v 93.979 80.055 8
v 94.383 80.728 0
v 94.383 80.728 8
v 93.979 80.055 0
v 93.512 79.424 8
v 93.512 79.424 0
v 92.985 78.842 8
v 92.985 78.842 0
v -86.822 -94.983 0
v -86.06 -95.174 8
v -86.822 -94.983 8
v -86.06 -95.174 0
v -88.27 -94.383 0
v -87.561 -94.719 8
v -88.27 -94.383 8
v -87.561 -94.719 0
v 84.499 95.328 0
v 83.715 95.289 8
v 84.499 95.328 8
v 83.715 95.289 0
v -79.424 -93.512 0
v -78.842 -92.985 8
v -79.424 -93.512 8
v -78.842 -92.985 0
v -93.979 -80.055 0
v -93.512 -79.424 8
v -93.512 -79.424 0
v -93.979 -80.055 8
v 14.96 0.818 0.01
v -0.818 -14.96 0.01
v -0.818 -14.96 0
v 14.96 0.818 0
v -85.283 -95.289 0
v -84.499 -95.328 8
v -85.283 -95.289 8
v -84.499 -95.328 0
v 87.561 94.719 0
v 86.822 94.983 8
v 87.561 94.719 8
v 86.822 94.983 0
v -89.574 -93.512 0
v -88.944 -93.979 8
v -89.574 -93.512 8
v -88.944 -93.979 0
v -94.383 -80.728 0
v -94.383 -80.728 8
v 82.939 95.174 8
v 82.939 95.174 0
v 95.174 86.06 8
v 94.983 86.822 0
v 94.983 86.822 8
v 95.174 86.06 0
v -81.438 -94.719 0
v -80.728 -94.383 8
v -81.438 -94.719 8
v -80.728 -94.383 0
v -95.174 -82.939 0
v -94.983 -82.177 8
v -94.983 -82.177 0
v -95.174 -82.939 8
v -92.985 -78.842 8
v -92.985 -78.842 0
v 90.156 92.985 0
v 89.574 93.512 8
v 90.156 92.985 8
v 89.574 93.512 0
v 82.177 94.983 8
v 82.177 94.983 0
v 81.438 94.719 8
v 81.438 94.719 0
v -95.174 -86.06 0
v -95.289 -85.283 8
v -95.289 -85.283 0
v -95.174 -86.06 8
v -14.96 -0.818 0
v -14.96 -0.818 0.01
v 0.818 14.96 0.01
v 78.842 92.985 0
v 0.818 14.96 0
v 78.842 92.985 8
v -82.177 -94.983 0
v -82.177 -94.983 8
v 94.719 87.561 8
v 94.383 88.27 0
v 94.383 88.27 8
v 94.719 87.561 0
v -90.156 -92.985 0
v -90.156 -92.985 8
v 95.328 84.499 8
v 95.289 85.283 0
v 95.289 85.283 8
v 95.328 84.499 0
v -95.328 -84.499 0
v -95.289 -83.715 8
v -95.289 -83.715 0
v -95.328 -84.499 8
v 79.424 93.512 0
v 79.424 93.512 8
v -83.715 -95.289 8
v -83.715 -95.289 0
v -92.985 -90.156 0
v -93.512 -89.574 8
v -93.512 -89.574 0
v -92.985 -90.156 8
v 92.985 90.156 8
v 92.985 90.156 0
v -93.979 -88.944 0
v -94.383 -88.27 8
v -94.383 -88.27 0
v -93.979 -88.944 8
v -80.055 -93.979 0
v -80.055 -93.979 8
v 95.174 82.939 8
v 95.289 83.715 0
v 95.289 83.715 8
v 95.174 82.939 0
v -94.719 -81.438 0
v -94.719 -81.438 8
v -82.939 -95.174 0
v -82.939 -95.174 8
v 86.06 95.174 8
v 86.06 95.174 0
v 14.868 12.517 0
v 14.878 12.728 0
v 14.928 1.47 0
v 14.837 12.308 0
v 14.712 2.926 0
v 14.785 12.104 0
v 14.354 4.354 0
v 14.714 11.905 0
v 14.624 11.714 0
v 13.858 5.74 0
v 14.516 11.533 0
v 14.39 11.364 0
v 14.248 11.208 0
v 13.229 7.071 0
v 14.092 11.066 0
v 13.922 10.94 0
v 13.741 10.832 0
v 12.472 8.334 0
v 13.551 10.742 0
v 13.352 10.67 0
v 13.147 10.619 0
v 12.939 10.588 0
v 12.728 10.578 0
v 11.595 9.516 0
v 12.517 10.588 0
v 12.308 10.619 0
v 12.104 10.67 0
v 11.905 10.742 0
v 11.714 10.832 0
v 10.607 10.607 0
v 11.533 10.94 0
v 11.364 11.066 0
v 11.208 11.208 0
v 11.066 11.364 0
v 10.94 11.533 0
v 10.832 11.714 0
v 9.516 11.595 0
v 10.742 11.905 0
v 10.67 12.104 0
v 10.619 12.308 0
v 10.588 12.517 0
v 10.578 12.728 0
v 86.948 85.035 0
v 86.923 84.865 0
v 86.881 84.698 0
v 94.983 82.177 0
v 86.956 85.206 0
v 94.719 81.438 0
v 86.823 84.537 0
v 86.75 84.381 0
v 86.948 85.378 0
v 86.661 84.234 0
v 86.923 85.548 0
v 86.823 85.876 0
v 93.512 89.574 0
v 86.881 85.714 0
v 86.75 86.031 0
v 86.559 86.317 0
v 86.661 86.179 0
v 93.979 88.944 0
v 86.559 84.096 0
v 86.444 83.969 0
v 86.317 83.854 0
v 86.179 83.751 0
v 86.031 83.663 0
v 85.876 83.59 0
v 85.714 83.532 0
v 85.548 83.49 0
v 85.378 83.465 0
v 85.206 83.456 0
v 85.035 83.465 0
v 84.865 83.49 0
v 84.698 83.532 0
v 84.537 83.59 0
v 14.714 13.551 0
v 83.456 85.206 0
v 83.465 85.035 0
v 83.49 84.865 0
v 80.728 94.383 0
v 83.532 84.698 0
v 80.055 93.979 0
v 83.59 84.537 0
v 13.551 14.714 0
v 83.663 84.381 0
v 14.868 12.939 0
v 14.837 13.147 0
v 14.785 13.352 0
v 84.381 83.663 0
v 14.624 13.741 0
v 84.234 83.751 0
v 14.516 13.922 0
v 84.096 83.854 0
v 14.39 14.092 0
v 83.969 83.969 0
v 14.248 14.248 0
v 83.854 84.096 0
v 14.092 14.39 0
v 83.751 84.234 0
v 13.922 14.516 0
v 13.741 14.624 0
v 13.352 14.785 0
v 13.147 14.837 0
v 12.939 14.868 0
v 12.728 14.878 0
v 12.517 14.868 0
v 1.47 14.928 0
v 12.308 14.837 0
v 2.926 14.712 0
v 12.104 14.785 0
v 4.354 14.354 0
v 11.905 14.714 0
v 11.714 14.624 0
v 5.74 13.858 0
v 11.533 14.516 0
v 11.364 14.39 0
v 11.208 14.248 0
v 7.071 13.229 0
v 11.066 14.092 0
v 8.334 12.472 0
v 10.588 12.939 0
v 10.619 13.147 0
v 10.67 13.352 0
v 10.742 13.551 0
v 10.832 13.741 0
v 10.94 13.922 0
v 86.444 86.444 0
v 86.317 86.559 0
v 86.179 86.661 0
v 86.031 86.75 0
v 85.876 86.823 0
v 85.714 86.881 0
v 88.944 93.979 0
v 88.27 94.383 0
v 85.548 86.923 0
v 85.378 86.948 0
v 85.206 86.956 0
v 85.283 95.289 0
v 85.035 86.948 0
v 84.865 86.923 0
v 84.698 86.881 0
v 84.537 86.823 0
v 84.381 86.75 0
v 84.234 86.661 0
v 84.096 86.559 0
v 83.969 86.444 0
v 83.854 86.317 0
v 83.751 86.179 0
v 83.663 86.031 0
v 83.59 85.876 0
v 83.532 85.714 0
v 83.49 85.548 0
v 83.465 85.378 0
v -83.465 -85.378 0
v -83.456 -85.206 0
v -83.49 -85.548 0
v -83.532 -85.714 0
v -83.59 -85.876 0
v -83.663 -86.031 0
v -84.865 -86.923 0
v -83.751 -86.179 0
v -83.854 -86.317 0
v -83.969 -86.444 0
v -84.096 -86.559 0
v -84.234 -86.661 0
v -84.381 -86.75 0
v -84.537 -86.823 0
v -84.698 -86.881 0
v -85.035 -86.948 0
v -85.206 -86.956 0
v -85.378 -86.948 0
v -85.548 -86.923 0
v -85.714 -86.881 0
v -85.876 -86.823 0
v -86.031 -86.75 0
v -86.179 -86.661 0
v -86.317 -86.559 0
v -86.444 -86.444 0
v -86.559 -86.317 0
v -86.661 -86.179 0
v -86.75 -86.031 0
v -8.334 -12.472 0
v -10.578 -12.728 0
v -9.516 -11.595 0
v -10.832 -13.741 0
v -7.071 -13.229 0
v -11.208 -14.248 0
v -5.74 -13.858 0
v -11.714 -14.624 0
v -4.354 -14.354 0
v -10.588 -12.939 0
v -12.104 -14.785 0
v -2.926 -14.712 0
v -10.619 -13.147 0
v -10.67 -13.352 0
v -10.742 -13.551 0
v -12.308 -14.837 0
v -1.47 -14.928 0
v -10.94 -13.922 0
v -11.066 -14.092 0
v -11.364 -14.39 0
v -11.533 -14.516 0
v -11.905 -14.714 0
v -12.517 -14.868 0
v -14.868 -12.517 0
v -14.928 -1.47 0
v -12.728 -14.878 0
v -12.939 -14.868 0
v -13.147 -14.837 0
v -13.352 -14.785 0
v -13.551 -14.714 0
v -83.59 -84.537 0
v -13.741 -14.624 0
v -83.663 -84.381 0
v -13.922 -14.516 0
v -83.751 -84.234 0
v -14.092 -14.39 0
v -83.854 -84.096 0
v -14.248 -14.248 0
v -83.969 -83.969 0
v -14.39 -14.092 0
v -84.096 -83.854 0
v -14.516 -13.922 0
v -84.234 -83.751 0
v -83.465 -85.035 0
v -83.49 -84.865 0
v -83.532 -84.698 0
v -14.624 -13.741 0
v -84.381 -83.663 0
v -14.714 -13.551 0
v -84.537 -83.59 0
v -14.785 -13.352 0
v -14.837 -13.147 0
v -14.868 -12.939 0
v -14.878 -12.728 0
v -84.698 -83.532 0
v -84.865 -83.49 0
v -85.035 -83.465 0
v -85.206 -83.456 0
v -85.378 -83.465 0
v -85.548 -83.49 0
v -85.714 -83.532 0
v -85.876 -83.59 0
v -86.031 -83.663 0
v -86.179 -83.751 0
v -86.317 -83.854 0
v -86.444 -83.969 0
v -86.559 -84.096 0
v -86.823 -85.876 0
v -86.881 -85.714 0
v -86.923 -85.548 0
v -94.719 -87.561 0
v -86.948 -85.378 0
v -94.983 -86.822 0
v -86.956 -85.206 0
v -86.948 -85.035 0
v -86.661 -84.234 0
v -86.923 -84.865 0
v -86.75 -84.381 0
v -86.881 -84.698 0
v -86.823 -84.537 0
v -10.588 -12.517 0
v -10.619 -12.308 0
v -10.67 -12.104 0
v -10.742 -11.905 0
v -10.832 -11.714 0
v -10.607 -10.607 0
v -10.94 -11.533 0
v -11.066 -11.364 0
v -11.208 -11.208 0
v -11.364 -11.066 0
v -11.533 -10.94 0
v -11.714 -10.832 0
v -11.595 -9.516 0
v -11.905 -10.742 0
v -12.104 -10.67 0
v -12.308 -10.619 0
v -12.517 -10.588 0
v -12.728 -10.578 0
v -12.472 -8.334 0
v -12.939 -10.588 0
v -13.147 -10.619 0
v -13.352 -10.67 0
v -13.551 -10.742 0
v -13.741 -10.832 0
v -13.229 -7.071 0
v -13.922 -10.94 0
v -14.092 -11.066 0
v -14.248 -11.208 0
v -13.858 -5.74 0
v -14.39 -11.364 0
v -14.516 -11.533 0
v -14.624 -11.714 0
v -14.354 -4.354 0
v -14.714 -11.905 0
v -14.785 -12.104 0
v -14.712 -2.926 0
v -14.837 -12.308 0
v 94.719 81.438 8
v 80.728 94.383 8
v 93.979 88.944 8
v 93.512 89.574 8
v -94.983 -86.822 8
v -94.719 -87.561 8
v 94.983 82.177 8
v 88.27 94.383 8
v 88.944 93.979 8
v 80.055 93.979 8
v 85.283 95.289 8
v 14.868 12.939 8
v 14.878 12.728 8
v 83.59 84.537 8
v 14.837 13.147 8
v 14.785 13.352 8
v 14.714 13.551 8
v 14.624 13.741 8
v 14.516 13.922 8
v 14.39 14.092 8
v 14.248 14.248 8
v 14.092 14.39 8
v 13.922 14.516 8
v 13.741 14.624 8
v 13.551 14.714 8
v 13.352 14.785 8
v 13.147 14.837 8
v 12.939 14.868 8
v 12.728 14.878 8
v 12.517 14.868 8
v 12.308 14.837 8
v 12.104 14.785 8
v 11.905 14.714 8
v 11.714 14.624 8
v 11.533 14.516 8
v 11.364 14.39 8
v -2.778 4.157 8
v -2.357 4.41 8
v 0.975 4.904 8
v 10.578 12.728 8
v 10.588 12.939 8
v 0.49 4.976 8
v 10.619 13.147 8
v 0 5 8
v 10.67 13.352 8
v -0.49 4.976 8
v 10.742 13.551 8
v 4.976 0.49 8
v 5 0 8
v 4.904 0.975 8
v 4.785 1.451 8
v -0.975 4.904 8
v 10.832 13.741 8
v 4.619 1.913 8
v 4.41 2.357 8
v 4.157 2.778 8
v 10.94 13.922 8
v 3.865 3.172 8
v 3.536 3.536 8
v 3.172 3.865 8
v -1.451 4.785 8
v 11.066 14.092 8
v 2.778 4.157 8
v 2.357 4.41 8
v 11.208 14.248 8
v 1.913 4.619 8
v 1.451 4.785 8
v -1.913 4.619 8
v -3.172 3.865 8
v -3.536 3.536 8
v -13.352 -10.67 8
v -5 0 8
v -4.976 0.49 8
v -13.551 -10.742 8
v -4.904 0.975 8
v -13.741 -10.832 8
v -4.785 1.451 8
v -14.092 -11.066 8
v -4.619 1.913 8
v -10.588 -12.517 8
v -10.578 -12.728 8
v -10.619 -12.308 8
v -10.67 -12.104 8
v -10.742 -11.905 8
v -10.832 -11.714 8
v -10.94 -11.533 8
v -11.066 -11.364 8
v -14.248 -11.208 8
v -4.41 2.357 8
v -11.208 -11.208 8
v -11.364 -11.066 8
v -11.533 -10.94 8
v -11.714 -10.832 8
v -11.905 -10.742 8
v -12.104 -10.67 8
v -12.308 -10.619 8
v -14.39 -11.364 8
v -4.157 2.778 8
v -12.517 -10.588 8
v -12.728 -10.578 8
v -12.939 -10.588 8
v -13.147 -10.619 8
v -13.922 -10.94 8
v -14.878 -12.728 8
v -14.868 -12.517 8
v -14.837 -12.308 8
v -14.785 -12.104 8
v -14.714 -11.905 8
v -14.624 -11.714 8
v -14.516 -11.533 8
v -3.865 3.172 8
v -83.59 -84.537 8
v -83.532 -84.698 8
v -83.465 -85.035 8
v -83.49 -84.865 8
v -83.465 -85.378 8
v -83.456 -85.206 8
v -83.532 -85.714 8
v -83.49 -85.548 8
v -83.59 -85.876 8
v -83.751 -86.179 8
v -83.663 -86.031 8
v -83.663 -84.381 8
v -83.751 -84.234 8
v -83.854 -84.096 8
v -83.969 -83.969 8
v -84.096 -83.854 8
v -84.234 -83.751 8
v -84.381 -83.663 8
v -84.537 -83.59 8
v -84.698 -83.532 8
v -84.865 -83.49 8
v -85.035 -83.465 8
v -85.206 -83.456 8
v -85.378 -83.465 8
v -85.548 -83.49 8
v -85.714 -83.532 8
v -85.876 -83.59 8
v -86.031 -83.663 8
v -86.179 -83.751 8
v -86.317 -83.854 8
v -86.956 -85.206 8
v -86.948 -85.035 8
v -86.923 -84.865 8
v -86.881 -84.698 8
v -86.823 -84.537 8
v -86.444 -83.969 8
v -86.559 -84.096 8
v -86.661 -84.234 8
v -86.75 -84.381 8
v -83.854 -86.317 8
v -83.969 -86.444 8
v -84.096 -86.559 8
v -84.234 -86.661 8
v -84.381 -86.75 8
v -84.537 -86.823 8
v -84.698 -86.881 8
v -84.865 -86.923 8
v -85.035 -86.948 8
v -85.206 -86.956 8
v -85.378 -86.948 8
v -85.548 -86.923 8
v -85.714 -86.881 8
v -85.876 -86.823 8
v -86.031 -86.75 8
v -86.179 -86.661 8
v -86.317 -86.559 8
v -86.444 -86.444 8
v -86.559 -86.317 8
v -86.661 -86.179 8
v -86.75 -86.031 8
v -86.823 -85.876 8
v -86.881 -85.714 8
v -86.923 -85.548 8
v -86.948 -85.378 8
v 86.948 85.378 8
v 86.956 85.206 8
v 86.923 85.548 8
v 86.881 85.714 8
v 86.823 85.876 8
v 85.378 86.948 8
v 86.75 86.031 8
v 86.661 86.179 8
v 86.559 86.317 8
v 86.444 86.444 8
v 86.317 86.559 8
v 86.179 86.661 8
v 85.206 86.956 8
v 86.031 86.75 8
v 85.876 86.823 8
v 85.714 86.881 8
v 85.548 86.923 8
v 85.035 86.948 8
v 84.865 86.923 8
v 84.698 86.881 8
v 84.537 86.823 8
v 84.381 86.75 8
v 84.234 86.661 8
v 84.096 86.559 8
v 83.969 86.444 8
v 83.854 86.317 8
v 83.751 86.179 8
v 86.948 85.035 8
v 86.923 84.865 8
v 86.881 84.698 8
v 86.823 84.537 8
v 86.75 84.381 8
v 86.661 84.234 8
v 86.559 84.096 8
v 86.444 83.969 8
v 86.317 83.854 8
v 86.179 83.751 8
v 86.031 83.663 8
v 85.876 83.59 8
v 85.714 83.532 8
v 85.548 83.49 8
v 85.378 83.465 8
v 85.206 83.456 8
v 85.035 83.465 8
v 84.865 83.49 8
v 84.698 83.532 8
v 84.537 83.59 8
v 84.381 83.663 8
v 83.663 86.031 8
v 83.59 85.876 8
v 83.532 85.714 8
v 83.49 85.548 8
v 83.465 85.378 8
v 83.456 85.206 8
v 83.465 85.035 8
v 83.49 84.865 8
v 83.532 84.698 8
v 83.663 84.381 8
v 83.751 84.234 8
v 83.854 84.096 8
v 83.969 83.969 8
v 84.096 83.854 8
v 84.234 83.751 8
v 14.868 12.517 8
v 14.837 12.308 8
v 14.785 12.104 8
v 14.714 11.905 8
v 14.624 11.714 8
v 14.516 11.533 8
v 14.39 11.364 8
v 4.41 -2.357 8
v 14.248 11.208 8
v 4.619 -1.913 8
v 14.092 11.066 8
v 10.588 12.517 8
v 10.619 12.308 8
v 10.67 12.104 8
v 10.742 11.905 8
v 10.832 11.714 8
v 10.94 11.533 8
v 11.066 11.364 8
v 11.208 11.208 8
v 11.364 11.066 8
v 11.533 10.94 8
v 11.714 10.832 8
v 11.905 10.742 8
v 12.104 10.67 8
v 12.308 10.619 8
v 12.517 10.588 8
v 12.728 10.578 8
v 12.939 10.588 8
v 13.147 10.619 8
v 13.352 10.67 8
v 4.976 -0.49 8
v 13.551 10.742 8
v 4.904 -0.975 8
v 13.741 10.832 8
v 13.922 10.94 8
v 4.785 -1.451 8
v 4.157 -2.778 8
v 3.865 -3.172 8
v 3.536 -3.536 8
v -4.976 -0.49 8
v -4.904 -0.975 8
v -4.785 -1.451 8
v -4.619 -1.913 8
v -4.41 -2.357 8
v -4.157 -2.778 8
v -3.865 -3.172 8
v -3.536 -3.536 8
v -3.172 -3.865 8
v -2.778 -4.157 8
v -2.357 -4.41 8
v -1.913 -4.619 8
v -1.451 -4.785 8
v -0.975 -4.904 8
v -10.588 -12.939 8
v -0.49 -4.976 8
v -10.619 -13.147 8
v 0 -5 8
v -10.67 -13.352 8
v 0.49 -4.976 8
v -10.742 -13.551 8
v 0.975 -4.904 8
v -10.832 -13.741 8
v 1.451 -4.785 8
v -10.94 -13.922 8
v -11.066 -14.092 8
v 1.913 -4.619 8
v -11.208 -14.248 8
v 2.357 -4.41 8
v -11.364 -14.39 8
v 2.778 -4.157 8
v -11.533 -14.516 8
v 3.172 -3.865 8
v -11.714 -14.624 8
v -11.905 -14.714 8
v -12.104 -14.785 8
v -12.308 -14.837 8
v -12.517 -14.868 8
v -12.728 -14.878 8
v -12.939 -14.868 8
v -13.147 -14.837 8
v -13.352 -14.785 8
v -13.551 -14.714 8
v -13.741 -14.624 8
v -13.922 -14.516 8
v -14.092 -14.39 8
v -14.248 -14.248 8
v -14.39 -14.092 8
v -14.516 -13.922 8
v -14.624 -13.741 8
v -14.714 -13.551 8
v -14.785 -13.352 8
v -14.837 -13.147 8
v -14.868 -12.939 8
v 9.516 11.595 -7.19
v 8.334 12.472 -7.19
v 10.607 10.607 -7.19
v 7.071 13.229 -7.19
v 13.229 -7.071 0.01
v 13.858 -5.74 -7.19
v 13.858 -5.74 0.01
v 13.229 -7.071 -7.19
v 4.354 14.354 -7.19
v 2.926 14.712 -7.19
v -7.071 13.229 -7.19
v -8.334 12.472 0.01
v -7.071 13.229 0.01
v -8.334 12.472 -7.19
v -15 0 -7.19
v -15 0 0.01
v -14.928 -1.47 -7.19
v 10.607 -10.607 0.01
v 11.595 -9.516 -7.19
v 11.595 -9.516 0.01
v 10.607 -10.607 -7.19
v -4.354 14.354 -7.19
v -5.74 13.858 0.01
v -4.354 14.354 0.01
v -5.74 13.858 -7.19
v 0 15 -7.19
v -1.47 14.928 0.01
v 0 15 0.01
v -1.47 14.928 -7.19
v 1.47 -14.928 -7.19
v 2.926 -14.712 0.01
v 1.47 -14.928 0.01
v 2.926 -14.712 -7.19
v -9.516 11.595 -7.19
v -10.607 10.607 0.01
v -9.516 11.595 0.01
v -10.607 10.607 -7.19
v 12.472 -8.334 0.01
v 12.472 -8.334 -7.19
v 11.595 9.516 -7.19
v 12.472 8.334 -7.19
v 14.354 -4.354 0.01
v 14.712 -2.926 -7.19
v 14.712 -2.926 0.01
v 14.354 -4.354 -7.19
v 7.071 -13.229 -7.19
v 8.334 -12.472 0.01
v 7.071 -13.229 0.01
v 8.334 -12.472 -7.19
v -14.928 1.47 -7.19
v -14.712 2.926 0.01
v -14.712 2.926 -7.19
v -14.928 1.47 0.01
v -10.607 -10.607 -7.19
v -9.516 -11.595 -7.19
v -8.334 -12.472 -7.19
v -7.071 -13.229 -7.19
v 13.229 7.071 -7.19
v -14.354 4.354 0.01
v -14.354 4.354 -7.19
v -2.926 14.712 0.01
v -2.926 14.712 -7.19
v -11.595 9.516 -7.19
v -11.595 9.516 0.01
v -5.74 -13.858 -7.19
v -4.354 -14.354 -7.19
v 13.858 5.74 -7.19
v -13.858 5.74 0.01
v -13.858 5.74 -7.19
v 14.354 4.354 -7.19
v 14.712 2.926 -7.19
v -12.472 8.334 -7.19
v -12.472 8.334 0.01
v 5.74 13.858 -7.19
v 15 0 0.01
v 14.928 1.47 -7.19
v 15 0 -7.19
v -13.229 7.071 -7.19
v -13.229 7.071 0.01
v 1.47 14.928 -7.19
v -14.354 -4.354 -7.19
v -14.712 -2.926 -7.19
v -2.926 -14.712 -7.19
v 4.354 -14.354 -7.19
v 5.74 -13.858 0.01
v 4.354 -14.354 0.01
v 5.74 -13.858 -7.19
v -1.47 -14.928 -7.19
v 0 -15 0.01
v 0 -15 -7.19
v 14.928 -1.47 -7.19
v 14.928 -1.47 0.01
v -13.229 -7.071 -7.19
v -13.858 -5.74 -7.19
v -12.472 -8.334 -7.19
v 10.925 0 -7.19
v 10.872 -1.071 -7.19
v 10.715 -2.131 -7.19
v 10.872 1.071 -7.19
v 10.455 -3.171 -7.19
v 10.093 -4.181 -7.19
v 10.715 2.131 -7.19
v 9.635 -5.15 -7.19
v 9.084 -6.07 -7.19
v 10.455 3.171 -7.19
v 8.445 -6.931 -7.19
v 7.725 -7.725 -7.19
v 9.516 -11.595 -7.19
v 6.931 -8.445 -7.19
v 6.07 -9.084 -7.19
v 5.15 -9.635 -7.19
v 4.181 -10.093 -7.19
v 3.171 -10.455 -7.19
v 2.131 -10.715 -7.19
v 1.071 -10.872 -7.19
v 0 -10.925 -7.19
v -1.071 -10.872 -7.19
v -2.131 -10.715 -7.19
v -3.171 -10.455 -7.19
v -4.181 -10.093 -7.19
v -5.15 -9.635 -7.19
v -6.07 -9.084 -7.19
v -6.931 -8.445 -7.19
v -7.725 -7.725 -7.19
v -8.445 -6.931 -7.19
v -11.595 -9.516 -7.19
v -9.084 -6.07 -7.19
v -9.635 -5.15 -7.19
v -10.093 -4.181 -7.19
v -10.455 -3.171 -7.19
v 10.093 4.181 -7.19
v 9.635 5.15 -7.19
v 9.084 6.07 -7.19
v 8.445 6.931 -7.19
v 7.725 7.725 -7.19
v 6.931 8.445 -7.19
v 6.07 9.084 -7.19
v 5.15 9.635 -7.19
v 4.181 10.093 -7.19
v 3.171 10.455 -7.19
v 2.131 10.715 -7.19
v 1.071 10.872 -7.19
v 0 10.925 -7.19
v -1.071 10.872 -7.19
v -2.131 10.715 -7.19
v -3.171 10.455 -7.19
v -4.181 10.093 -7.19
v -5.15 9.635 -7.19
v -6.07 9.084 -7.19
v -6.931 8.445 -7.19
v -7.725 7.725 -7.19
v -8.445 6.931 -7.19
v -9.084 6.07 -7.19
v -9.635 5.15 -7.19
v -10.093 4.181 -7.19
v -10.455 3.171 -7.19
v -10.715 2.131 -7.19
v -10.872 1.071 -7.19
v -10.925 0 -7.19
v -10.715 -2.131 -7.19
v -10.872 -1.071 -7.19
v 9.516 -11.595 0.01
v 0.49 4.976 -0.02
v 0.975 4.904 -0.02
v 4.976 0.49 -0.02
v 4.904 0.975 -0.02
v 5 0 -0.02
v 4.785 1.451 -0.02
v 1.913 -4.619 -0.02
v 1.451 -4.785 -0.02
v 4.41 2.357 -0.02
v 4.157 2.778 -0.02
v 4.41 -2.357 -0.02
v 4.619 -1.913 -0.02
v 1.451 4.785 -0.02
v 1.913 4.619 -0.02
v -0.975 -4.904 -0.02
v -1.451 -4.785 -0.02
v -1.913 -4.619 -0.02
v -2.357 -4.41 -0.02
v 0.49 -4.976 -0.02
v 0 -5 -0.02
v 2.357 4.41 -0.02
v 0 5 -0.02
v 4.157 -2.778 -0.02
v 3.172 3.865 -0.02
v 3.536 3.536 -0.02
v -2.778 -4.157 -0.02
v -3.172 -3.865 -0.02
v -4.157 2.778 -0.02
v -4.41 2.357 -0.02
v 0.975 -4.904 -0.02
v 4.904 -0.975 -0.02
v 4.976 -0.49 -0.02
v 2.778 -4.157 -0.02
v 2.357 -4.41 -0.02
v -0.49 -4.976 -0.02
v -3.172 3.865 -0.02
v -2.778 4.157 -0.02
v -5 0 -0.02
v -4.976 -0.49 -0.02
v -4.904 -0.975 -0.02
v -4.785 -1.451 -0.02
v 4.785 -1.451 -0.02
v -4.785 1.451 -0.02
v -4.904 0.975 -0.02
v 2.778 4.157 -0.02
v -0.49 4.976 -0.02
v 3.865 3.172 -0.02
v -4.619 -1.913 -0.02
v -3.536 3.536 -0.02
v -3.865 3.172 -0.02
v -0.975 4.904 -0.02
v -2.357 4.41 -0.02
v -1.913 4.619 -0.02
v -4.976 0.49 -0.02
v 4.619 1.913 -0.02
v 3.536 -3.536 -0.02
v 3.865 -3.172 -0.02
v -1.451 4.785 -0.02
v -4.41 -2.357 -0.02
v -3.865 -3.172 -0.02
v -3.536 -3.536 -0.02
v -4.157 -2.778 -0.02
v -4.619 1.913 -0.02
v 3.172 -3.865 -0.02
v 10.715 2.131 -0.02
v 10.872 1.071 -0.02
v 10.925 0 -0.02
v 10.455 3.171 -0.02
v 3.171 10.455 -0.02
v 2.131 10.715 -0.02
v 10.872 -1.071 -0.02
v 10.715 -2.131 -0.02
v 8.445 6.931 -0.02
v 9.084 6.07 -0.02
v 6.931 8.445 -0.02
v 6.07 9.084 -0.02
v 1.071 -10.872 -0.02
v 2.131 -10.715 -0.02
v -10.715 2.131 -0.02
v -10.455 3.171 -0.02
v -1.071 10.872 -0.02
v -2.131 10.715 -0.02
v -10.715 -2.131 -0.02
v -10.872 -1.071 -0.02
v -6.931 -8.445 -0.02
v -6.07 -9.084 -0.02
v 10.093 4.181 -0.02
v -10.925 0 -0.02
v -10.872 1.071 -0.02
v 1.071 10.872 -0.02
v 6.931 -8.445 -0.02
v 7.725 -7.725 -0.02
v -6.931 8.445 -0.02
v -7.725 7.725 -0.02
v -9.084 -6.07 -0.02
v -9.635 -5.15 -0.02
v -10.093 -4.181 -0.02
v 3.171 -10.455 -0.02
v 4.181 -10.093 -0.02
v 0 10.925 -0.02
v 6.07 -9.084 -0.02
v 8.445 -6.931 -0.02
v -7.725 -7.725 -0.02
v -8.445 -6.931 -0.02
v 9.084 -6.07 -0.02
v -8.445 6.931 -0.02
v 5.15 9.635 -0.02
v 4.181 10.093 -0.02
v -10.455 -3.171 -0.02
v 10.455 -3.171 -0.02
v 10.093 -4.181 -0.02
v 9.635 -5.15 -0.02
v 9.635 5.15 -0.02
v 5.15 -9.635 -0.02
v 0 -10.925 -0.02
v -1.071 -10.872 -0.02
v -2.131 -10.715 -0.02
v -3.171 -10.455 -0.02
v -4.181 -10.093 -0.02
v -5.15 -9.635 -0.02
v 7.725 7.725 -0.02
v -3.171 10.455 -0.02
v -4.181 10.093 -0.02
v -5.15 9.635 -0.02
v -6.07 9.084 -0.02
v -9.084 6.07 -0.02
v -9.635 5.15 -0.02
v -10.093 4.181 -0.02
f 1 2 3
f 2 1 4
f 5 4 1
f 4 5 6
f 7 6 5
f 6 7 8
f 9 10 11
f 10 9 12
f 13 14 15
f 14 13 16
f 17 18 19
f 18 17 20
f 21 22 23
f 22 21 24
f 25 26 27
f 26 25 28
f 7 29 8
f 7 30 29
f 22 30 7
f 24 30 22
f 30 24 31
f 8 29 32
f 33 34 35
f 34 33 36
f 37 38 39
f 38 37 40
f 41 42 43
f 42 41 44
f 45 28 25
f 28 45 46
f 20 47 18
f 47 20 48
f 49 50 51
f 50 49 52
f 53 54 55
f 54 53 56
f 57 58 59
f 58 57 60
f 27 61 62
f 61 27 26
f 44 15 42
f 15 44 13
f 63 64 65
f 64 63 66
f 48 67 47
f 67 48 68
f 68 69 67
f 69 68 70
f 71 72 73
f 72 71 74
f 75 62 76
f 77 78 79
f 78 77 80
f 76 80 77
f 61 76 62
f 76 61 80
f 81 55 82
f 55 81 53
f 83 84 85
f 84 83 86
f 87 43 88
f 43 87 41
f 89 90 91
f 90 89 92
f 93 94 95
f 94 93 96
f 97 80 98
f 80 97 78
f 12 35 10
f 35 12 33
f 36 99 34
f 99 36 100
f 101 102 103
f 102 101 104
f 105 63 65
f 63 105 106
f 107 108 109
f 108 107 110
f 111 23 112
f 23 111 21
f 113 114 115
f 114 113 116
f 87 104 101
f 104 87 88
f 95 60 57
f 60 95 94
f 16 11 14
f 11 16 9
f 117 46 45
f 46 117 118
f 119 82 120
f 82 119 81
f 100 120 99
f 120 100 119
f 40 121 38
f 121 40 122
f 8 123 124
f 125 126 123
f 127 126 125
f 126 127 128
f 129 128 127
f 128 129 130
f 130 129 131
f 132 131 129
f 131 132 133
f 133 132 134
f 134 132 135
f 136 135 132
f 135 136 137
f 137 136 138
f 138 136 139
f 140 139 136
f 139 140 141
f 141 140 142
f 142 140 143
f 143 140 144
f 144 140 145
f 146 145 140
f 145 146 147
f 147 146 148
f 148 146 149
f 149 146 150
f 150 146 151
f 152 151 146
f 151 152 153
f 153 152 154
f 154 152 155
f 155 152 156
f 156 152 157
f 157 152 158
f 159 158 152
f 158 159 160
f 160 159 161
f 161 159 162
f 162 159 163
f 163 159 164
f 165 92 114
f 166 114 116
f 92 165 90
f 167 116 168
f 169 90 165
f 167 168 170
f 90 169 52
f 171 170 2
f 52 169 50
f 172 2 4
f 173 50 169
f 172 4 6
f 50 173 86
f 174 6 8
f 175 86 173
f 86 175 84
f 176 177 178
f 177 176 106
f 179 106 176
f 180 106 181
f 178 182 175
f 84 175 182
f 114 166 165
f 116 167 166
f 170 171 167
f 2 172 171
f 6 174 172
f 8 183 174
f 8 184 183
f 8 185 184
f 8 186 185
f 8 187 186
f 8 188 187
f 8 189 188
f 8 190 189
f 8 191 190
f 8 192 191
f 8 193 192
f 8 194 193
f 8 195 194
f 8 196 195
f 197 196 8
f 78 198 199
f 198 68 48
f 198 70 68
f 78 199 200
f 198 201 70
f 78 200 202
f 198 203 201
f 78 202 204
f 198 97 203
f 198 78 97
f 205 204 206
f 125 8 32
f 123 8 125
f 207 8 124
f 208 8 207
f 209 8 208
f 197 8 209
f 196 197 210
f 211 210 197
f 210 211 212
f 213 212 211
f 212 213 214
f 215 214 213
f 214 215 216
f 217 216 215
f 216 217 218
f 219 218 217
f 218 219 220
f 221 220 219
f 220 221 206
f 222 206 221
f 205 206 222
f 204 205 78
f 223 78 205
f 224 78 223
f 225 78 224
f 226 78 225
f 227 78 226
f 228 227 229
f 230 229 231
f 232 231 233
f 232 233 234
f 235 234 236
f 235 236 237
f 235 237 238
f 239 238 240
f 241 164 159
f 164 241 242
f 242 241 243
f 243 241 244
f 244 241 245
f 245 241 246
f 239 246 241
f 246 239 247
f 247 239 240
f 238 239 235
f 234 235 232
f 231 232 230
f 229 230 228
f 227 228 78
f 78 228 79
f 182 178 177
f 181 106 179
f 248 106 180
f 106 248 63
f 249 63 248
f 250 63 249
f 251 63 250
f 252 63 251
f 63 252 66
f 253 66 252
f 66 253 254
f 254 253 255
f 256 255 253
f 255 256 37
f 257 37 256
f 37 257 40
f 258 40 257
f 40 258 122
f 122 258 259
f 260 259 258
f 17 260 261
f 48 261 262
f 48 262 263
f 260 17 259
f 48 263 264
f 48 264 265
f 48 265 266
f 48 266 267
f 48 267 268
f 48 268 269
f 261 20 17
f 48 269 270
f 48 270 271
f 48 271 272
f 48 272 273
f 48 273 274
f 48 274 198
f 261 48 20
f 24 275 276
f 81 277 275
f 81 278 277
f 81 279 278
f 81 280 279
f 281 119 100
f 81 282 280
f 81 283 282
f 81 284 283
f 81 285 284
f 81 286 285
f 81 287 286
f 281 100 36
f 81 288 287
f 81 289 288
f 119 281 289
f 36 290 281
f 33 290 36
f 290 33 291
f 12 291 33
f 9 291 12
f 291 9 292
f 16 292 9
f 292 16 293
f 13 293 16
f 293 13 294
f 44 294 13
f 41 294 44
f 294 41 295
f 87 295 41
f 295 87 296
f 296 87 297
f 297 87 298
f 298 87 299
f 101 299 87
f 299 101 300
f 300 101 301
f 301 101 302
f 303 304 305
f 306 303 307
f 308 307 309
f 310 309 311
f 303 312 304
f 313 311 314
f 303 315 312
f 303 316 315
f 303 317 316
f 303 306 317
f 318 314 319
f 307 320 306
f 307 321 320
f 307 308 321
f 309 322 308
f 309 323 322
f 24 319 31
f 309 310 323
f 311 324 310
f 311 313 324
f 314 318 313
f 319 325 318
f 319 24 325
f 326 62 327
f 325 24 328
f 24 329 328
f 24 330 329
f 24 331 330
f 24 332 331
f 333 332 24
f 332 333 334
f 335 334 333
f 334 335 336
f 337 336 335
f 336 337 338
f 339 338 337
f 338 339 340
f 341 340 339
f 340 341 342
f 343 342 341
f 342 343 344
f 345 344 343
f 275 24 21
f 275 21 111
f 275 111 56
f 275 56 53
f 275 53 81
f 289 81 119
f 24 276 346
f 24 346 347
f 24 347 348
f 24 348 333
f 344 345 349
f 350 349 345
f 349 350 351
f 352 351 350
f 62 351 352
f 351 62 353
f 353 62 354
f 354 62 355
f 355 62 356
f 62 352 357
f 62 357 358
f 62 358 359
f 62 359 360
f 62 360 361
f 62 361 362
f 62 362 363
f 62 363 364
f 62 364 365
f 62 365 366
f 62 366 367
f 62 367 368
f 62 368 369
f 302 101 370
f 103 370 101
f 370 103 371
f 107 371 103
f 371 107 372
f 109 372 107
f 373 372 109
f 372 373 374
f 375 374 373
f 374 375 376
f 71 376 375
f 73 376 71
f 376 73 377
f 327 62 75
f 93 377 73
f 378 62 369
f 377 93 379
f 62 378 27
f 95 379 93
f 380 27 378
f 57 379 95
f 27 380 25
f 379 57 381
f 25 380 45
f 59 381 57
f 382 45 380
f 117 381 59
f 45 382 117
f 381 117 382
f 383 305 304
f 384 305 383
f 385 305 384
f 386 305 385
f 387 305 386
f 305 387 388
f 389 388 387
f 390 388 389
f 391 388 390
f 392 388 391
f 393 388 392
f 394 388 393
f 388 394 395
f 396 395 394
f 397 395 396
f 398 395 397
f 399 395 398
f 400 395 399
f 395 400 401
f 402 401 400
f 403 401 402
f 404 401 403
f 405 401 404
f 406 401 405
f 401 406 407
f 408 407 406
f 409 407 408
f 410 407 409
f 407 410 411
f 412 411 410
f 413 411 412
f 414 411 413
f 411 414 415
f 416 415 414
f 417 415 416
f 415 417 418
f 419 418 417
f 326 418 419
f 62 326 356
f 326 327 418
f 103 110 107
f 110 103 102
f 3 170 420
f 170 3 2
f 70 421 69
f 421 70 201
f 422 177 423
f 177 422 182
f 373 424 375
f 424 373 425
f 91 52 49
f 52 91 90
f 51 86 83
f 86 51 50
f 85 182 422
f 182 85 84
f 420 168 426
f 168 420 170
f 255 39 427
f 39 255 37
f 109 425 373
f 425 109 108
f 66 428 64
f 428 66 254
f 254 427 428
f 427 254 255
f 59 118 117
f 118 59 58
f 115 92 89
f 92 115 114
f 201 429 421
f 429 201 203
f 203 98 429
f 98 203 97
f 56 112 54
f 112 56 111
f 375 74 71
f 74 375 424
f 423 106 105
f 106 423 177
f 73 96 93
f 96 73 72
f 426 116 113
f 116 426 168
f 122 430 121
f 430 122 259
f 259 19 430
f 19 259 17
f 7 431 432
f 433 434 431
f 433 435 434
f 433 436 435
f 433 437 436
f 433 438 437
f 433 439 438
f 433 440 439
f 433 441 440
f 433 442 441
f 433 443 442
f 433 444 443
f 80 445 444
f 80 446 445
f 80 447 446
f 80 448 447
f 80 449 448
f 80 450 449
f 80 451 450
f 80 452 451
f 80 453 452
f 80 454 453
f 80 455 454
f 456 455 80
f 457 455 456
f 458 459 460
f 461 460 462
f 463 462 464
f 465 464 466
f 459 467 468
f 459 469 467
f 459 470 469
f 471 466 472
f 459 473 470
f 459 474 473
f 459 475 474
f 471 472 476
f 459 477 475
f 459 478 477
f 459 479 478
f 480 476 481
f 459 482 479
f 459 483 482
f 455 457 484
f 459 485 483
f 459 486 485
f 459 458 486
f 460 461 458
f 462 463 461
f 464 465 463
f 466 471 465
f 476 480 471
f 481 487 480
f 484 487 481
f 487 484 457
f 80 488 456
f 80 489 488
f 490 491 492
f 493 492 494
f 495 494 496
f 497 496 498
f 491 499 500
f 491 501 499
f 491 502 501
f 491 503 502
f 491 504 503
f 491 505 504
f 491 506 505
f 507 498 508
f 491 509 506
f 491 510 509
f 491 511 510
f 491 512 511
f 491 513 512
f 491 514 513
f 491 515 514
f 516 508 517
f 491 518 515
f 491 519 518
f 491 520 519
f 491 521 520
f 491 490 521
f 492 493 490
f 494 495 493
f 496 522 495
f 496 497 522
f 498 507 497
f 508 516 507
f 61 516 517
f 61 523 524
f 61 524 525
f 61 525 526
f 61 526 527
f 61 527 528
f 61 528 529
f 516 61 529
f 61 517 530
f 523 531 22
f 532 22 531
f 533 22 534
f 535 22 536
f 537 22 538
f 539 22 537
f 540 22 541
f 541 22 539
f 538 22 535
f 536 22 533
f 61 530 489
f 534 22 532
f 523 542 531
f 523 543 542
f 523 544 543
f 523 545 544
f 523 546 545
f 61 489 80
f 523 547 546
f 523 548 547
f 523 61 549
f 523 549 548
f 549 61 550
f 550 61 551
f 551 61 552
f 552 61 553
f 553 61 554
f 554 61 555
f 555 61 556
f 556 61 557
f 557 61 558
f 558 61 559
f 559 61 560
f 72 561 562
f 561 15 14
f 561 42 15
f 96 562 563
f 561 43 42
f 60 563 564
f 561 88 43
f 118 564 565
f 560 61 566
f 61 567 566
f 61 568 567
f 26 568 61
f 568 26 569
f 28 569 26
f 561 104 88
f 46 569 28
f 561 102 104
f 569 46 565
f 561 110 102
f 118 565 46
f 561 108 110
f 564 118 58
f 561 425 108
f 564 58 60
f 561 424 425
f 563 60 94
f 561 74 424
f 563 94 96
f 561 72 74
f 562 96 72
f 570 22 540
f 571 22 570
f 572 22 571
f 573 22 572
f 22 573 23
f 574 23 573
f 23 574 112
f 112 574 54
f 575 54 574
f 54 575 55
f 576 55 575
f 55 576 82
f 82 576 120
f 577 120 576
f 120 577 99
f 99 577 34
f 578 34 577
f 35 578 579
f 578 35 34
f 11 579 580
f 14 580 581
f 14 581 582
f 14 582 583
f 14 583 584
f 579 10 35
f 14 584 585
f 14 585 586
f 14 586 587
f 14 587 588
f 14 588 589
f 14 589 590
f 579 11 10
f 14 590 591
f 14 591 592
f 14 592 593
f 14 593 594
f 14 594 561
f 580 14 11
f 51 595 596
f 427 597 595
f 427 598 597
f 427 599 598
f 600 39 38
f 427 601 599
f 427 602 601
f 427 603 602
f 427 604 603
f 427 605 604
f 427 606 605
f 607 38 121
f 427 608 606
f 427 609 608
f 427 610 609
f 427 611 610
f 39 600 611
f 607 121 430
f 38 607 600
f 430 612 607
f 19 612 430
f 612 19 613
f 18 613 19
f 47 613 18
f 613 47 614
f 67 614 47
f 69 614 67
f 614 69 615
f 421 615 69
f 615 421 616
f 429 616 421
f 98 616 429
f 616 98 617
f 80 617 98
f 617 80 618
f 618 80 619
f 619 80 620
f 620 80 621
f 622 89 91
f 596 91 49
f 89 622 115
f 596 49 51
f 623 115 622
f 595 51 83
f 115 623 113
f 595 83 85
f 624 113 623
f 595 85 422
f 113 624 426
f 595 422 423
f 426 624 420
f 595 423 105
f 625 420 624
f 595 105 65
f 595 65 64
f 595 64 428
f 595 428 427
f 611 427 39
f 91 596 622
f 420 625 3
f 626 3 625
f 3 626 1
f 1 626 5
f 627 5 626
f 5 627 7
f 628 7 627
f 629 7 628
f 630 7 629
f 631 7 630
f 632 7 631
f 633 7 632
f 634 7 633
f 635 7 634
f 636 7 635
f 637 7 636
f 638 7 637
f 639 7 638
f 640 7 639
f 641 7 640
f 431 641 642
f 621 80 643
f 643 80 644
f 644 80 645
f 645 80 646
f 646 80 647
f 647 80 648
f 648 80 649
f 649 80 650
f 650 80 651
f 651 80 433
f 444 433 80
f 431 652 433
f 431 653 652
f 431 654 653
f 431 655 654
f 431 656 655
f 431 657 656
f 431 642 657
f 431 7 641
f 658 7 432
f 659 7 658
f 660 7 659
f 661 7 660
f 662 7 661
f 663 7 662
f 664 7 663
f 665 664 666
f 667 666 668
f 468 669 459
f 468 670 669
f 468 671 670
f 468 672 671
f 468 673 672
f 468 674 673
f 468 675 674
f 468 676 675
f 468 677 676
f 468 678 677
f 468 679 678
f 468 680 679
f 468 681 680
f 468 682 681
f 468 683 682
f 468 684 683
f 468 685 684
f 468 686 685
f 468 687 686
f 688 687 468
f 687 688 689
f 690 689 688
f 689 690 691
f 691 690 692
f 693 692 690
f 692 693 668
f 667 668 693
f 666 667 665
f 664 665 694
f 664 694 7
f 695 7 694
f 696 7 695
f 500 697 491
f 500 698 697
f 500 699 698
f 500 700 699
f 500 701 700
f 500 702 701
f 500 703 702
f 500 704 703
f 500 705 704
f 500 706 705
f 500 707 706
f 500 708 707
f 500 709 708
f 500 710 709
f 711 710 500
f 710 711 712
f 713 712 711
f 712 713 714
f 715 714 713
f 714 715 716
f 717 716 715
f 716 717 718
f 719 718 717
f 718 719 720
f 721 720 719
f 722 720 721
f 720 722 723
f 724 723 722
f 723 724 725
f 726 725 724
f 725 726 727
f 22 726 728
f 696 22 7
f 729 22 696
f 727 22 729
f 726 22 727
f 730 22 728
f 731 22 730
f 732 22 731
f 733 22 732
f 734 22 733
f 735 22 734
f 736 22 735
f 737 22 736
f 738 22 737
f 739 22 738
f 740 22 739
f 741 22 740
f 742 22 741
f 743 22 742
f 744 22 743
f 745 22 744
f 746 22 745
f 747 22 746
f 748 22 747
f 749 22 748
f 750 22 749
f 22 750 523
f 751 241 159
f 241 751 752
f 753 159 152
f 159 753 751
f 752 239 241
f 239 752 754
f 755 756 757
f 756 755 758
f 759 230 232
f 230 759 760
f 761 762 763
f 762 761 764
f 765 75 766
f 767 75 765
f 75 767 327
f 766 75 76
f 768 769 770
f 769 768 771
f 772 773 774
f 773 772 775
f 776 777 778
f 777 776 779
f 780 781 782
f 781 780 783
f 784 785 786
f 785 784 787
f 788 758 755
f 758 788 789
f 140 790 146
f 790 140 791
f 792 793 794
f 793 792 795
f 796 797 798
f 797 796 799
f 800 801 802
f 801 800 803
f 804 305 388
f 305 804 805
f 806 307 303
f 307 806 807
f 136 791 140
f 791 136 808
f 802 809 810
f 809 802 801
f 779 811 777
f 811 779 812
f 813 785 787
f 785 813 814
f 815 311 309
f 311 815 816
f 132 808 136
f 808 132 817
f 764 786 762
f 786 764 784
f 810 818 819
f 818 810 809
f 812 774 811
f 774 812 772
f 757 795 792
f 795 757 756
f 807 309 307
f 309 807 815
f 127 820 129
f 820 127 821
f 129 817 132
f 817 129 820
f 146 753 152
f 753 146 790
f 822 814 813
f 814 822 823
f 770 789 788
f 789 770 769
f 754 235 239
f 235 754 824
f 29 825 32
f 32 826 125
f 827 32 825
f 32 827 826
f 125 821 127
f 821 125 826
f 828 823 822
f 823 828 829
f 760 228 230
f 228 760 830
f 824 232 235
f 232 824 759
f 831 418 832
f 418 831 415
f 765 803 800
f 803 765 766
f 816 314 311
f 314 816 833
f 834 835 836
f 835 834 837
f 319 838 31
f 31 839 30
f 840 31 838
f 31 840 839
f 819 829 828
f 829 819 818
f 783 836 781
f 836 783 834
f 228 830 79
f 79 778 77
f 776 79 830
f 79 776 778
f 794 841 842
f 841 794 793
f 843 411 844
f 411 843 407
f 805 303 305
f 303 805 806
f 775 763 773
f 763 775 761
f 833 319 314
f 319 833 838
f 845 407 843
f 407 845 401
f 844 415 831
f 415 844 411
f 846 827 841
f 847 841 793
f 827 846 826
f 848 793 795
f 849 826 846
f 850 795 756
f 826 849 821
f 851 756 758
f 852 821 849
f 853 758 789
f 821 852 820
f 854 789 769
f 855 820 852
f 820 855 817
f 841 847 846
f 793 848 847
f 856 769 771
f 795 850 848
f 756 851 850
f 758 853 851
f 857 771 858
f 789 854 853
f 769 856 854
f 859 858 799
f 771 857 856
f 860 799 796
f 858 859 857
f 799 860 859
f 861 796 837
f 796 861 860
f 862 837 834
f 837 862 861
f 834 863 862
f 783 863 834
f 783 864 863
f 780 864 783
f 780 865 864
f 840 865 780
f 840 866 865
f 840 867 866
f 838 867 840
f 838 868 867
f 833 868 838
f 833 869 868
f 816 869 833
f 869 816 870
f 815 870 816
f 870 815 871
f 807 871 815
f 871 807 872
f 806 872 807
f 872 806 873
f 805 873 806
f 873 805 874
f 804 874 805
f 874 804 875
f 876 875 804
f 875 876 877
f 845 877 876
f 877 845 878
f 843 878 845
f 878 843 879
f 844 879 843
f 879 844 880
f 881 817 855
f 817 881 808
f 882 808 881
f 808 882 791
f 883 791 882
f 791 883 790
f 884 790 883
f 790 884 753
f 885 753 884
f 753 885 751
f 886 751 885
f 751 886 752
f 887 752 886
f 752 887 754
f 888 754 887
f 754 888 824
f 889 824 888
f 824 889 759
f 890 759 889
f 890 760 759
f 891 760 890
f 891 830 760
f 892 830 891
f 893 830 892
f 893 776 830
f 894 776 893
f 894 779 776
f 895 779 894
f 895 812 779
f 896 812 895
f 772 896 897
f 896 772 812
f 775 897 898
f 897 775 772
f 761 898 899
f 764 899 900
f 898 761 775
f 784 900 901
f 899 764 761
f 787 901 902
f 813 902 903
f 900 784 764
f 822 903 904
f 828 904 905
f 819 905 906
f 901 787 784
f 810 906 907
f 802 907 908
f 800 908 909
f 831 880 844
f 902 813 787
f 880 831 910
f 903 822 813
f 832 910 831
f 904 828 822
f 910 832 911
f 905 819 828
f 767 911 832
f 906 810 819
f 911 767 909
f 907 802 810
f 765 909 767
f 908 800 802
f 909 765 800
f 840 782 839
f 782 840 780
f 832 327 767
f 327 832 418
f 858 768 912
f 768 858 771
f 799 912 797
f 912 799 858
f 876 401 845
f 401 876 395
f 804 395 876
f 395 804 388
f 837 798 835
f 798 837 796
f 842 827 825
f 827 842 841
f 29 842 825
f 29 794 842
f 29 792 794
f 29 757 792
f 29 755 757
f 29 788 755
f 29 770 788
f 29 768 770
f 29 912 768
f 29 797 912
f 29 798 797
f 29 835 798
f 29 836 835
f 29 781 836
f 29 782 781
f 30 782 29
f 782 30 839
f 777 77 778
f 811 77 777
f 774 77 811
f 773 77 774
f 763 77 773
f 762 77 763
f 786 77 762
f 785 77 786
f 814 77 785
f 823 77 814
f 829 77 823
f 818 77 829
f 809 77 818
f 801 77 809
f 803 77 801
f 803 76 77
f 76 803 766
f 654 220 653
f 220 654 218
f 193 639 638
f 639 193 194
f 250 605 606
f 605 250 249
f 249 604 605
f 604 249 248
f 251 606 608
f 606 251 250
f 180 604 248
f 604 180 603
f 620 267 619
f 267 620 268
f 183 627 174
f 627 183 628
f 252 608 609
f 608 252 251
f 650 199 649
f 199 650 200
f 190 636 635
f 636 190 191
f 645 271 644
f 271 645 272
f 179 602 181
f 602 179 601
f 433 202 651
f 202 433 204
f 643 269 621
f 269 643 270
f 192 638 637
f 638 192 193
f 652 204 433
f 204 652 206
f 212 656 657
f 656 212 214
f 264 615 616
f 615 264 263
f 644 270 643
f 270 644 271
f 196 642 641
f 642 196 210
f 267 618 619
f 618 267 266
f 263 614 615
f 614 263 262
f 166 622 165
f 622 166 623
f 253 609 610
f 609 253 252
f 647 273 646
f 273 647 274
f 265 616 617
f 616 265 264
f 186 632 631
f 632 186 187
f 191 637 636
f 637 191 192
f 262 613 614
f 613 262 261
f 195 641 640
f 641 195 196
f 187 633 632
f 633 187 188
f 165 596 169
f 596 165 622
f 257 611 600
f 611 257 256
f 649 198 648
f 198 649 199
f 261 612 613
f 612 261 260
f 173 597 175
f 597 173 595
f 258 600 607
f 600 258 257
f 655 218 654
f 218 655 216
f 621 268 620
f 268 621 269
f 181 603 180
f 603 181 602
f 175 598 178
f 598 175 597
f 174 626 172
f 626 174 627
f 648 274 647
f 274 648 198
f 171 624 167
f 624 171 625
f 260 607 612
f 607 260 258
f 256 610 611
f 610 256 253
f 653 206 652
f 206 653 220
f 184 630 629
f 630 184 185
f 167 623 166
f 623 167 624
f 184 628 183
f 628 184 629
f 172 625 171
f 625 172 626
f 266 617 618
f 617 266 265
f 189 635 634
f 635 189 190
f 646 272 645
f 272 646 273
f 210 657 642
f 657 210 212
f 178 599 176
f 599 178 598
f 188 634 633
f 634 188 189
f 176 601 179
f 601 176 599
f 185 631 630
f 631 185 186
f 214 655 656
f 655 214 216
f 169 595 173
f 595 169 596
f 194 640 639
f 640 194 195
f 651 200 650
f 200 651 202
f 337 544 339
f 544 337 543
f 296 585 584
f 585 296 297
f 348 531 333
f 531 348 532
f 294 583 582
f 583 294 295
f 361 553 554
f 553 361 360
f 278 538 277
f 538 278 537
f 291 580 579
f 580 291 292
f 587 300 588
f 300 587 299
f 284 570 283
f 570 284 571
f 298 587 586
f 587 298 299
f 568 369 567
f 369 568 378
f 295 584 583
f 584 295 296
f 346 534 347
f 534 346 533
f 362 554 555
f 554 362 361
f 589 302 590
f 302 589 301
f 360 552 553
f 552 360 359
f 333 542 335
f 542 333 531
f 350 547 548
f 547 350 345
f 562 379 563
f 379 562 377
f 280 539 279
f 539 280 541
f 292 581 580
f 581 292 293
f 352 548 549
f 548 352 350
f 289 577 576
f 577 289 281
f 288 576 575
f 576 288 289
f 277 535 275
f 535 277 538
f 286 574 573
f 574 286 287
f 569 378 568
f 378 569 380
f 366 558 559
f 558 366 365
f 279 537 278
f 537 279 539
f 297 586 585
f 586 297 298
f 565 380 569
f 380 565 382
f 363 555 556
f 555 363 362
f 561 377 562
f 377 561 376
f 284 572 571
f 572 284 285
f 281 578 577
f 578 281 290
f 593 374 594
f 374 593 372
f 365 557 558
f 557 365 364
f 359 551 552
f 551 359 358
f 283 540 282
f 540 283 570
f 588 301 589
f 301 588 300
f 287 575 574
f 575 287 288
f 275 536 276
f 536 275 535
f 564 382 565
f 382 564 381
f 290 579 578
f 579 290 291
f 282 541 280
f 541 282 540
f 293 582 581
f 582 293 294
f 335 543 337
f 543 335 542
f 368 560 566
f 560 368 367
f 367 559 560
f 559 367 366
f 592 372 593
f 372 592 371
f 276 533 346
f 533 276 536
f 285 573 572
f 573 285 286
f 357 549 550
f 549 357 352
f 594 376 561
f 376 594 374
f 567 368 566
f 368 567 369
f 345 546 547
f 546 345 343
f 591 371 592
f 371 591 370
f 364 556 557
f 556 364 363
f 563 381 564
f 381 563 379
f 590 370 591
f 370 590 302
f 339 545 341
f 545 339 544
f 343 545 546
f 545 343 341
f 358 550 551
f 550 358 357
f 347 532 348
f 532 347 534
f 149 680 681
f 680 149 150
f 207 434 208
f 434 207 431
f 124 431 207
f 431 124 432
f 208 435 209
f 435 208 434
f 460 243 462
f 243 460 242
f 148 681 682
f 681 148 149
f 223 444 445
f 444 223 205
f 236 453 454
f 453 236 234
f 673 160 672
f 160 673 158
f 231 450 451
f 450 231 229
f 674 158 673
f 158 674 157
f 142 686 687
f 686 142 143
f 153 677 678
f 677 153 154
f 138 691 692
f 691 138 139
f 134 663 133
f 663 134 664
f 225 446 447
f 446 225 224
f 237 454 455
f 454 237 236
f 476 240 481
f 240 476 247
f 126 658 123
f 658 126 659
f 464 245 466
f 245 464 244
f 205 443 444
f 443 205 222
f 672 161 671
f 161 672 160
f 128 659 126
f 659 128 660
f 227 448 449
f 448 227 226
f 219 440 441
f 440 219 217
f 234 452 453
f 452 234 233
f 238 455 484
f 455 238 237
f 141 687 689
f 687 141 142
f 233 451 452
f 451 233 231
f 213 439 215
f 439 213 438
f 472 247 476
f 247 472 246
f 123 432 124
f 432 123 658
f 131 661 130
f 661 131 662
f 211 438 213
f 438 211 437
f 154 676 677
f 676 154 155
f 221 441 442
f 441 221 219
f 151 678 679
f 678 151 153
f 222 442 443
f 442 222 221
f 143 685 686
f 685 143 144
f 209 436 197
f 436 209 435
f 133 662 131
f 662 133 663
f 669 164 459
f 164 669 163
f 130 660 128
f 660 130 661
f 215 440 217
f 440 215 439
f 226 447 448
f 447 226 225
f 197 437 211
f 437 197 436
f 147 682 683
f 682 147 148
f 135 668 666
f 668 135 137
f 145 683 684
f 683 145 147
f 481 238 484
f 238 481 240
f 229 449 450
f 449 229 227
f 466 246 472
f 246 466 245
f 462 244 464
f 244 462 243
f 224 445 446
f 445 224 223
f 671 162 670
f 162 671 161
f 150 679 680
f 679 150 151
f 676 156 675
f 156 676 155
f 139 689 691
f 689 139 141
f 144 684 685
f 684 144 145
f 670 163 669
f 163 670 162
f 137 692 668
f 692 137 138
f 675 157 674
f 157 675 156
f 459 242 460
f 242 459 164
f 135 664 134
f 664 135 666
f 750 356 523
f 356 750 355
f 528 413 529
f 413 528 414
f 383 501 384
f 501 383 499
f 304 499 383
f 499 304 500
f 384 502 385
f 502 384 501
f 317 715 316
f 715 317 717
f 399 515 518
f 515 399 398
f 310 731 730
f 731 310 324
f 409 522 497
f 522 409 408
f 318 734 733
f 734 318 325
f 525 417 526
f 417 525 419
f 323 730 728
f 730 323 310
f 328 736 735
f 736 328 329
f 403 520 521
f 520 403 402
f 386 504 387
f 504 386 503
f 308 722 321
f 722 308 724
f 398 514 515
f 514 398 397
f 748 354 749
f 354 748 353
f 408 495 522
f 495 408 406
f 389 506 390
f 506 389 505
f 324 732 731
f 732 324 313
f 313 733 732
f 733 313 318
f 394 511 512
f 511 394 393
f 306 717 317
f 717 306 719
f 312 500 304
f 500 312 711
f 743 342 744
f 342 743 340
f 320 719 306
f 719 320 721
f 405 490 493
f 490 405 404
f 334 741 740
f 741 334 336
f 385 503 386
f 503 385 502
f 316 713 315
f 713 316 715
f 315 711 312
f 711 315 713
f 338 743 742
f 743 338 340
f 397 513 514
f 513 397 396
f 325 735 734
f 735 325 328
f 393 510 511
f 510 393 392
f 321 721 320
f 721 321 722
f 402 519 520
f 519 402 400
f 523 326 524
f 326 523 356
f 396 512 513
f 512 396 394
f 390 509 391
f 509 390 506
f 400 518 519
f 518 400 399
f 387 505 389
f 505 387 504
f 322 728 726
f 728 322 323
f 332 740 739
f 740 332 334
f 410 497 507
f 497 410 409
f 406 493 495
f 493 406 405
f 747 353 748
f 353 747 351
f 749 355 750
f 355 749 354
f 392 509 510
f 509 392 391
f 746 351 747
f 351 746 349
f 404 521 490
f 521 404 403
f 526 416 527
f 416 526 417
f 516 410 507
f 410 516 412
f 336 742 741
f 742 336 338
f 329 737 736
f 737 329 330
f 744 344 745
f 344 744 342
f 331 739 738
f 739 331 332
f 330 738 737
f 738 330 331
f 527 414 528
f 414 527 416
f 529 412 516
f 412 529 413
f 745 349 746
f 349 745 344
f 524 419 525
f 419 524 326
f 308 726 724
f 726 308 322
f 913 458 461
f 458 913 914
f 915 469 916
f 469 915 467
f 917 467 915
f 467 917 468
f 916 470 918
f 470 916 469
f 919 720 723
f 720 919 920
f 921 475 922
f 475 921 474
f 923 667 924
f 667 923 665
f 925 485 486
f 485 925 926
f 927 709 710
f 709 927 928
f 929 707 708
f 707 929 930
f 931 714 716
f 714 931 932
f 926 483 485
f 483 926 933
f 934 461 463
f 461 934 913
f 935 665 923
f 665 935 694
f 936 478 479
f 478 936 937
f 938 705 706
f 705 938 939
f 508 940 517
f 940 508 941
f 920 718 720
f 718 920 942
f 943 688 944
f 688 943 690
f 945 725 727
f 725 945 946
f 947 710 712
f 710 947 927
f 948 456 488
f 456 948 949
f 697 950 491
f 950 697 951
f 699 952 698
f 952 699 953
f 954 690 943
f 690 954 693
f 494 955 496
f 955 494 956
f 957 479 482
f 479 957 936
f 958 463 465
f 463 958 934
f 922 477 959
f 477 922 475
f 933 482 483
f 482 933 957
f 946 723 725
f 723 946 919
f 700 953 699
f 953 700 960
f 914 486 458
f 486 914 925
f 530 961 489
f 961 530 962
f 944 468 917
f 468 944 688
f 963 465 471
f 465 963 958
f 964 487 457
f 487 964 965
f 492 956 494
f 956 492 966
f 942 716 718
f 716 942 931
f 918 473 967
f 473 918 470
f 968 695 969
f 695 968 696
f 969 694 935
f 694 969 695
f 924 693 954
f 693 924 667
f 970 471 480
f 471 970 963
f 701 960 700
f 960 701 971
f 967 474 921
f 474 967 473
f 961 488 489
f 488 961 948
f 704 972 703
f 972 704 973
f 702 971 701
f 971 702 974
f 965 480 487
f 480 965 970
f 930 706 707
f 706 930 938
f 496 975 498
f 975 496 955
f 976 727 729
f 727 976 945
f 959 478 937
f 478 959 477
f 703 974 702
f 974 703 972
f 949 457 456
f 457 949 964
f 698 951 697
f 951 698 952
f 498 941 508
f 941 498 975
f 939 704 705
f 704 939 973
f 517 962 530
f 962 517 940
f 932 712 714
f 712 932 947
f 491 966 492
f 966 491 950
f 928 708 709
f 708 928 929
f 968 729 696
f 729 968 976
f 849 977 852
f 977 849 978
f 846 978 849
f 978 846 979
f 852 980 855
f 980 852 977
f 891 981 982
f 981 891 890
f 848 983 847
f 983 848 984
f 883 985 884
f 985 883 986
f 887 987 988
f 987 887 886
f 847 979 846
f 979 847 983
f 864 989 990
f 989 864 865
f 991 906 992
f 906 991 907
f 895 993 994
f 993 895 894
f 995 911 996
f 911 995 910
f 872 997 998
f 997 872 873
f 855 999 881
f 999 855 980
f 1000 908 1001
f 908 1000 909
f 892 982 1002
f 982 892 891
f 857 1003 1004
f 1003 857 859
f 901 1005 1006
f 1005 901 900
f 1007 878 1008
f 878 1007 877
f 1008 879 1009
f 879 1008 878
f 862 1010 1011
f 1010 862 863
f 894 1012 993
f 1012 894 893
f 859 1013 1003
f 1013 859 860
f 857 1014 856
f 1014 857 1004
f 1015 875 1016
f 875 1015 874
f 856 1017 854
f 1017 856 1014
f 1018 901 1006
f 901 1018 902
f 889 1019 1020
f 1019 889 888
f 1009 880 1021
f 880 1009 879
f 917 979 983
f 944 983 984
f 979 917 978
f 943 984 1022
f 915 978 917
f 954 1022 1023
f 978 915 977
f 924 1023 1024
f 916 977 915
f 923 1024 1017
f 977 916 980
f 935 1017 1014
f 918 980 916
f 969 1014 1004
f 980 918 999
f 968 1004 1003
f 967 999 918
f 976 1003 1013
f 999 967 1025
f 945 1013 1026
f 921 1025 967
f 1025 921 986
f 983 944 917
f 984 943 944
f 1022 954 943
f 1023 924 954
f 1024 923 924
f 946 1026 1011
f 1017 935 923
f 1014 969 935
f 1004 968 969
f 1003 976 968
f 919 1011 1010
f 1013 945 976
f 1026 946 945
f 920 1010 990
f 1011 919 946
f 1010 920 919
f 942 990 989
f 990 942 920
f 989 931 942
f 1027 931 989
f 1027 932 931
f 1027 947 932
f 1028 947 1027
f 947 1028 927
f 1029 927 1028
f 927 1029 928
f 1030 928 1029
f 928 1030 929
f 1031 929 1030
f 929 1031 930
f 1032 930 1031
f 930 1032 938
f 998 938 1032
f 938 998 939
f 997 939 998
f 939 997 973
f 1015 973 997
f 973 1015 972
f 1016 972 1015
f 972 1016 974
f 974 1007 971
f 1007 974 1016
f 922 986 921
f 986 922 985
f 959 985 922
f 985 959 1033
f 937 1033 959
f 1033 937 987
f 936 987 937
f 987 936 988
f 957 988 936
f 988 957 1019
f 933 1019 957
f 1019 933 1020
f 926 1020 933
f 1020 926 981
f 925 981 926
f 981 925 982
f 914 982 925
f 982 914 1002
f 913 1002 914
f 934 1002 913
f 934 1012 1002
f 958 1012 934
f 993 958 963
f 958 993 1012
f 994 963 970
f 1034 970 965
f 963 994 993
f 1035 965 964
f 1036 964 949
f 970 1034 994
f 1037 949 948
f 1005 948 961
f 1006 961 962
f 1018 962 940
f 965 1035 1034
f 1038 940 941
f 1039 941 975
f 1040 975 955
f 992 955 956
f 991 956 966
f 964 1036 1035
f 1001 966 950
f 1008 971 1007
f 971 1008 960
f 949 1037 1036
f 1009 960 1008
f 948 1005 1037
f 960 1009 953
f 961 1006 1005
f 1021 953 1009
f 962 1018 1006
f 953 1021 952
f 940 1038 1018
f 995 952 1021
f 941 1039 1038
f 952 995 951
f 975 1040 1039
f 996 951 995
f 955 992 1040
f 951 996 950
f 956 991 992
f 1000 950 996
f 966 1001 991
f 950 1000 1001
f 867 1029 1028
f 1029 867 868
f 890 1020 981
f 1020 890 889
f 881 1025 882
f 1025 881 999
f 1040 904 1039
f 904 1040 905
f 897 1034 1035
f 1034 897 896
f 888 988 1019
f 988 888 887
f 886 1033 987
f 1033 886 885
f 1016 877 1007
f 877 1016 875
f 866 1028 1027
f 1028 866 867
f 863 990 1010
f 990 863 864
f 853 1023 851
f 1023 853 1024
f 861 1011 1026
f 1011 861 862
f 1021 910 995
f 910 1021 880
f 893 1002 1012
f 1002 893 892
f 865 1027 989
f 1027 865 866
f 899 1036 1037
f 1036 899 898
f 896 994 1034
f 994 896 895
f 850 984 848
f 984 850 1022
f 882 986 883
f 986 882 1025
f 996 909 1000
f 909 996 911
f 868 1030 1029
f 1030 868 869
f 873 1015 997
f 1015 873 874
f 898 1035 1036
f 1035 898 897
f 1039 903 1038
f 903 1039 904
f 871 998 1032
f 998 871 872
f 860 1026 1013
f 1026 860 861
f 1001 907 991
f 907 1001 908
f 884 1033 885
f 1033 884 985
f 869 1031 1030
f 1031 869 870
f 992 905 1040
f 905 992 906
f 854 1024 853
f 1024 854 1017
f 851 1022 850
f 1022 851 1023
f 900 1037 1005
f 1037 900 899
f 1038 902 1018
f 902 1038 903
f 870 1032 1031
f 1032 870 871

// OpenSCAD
// Gen-CZ — front BEARING BRIDGE (bar endbell, 2026-10-10): a 608 boss on a 20 mm wide bar that spans the
// two frame rods at 45 deg and 45+180 deg (R = flange_bolt_r). The front bridge uses the rods at 45/225 deg, the rear
// bridge the rods at 135/315 deg, so the two bridges cross at 90 deg and the stator is held at 4 points.
// A bar instead of a full disc is what lets this big-ring kit fit ONE 410 mm plate. Print flat face DOWN (boss up, no supports).
// Brace holes (temporary M4 jack rods, R = brace_r) sit on the bar axis.
include <parameters.scad>;
$fn = 64;
bar_w = 20;
bar_len = 2 * (flange_bolt_r + 9);
module bar_2d() { offset(r=8) offset(delta=-8) square([bar_len, bar_w], center=true); }
difference() {
    rotate([0, 0, 45]) union() {
        linear_extrude(endbell_thick) bar_2d();
        translate([0, 0, -bearing_h + 0.01]) cylinder(d=30, h=bearing_h);
    }
    translate([0, 0, -bearing_h - 0.1]) cylinder(d=endbell_shaft_clear, h=50);
    translate([0, 0, -bearing_h - 0.02]) cylinder(d=bearing_d, h=bearing_h);
    for (s = [0, 180]) rotate([0, 0, 45 + s]) translate([flange_bolt_r, 0, -20]) cylinder(d=m3_clear, h=60);
    for (a = brace_angles) translate([brace_r*cos(a), brace_r*sin(a), -20]) cylinder(d=brace_d, h=50);
}
